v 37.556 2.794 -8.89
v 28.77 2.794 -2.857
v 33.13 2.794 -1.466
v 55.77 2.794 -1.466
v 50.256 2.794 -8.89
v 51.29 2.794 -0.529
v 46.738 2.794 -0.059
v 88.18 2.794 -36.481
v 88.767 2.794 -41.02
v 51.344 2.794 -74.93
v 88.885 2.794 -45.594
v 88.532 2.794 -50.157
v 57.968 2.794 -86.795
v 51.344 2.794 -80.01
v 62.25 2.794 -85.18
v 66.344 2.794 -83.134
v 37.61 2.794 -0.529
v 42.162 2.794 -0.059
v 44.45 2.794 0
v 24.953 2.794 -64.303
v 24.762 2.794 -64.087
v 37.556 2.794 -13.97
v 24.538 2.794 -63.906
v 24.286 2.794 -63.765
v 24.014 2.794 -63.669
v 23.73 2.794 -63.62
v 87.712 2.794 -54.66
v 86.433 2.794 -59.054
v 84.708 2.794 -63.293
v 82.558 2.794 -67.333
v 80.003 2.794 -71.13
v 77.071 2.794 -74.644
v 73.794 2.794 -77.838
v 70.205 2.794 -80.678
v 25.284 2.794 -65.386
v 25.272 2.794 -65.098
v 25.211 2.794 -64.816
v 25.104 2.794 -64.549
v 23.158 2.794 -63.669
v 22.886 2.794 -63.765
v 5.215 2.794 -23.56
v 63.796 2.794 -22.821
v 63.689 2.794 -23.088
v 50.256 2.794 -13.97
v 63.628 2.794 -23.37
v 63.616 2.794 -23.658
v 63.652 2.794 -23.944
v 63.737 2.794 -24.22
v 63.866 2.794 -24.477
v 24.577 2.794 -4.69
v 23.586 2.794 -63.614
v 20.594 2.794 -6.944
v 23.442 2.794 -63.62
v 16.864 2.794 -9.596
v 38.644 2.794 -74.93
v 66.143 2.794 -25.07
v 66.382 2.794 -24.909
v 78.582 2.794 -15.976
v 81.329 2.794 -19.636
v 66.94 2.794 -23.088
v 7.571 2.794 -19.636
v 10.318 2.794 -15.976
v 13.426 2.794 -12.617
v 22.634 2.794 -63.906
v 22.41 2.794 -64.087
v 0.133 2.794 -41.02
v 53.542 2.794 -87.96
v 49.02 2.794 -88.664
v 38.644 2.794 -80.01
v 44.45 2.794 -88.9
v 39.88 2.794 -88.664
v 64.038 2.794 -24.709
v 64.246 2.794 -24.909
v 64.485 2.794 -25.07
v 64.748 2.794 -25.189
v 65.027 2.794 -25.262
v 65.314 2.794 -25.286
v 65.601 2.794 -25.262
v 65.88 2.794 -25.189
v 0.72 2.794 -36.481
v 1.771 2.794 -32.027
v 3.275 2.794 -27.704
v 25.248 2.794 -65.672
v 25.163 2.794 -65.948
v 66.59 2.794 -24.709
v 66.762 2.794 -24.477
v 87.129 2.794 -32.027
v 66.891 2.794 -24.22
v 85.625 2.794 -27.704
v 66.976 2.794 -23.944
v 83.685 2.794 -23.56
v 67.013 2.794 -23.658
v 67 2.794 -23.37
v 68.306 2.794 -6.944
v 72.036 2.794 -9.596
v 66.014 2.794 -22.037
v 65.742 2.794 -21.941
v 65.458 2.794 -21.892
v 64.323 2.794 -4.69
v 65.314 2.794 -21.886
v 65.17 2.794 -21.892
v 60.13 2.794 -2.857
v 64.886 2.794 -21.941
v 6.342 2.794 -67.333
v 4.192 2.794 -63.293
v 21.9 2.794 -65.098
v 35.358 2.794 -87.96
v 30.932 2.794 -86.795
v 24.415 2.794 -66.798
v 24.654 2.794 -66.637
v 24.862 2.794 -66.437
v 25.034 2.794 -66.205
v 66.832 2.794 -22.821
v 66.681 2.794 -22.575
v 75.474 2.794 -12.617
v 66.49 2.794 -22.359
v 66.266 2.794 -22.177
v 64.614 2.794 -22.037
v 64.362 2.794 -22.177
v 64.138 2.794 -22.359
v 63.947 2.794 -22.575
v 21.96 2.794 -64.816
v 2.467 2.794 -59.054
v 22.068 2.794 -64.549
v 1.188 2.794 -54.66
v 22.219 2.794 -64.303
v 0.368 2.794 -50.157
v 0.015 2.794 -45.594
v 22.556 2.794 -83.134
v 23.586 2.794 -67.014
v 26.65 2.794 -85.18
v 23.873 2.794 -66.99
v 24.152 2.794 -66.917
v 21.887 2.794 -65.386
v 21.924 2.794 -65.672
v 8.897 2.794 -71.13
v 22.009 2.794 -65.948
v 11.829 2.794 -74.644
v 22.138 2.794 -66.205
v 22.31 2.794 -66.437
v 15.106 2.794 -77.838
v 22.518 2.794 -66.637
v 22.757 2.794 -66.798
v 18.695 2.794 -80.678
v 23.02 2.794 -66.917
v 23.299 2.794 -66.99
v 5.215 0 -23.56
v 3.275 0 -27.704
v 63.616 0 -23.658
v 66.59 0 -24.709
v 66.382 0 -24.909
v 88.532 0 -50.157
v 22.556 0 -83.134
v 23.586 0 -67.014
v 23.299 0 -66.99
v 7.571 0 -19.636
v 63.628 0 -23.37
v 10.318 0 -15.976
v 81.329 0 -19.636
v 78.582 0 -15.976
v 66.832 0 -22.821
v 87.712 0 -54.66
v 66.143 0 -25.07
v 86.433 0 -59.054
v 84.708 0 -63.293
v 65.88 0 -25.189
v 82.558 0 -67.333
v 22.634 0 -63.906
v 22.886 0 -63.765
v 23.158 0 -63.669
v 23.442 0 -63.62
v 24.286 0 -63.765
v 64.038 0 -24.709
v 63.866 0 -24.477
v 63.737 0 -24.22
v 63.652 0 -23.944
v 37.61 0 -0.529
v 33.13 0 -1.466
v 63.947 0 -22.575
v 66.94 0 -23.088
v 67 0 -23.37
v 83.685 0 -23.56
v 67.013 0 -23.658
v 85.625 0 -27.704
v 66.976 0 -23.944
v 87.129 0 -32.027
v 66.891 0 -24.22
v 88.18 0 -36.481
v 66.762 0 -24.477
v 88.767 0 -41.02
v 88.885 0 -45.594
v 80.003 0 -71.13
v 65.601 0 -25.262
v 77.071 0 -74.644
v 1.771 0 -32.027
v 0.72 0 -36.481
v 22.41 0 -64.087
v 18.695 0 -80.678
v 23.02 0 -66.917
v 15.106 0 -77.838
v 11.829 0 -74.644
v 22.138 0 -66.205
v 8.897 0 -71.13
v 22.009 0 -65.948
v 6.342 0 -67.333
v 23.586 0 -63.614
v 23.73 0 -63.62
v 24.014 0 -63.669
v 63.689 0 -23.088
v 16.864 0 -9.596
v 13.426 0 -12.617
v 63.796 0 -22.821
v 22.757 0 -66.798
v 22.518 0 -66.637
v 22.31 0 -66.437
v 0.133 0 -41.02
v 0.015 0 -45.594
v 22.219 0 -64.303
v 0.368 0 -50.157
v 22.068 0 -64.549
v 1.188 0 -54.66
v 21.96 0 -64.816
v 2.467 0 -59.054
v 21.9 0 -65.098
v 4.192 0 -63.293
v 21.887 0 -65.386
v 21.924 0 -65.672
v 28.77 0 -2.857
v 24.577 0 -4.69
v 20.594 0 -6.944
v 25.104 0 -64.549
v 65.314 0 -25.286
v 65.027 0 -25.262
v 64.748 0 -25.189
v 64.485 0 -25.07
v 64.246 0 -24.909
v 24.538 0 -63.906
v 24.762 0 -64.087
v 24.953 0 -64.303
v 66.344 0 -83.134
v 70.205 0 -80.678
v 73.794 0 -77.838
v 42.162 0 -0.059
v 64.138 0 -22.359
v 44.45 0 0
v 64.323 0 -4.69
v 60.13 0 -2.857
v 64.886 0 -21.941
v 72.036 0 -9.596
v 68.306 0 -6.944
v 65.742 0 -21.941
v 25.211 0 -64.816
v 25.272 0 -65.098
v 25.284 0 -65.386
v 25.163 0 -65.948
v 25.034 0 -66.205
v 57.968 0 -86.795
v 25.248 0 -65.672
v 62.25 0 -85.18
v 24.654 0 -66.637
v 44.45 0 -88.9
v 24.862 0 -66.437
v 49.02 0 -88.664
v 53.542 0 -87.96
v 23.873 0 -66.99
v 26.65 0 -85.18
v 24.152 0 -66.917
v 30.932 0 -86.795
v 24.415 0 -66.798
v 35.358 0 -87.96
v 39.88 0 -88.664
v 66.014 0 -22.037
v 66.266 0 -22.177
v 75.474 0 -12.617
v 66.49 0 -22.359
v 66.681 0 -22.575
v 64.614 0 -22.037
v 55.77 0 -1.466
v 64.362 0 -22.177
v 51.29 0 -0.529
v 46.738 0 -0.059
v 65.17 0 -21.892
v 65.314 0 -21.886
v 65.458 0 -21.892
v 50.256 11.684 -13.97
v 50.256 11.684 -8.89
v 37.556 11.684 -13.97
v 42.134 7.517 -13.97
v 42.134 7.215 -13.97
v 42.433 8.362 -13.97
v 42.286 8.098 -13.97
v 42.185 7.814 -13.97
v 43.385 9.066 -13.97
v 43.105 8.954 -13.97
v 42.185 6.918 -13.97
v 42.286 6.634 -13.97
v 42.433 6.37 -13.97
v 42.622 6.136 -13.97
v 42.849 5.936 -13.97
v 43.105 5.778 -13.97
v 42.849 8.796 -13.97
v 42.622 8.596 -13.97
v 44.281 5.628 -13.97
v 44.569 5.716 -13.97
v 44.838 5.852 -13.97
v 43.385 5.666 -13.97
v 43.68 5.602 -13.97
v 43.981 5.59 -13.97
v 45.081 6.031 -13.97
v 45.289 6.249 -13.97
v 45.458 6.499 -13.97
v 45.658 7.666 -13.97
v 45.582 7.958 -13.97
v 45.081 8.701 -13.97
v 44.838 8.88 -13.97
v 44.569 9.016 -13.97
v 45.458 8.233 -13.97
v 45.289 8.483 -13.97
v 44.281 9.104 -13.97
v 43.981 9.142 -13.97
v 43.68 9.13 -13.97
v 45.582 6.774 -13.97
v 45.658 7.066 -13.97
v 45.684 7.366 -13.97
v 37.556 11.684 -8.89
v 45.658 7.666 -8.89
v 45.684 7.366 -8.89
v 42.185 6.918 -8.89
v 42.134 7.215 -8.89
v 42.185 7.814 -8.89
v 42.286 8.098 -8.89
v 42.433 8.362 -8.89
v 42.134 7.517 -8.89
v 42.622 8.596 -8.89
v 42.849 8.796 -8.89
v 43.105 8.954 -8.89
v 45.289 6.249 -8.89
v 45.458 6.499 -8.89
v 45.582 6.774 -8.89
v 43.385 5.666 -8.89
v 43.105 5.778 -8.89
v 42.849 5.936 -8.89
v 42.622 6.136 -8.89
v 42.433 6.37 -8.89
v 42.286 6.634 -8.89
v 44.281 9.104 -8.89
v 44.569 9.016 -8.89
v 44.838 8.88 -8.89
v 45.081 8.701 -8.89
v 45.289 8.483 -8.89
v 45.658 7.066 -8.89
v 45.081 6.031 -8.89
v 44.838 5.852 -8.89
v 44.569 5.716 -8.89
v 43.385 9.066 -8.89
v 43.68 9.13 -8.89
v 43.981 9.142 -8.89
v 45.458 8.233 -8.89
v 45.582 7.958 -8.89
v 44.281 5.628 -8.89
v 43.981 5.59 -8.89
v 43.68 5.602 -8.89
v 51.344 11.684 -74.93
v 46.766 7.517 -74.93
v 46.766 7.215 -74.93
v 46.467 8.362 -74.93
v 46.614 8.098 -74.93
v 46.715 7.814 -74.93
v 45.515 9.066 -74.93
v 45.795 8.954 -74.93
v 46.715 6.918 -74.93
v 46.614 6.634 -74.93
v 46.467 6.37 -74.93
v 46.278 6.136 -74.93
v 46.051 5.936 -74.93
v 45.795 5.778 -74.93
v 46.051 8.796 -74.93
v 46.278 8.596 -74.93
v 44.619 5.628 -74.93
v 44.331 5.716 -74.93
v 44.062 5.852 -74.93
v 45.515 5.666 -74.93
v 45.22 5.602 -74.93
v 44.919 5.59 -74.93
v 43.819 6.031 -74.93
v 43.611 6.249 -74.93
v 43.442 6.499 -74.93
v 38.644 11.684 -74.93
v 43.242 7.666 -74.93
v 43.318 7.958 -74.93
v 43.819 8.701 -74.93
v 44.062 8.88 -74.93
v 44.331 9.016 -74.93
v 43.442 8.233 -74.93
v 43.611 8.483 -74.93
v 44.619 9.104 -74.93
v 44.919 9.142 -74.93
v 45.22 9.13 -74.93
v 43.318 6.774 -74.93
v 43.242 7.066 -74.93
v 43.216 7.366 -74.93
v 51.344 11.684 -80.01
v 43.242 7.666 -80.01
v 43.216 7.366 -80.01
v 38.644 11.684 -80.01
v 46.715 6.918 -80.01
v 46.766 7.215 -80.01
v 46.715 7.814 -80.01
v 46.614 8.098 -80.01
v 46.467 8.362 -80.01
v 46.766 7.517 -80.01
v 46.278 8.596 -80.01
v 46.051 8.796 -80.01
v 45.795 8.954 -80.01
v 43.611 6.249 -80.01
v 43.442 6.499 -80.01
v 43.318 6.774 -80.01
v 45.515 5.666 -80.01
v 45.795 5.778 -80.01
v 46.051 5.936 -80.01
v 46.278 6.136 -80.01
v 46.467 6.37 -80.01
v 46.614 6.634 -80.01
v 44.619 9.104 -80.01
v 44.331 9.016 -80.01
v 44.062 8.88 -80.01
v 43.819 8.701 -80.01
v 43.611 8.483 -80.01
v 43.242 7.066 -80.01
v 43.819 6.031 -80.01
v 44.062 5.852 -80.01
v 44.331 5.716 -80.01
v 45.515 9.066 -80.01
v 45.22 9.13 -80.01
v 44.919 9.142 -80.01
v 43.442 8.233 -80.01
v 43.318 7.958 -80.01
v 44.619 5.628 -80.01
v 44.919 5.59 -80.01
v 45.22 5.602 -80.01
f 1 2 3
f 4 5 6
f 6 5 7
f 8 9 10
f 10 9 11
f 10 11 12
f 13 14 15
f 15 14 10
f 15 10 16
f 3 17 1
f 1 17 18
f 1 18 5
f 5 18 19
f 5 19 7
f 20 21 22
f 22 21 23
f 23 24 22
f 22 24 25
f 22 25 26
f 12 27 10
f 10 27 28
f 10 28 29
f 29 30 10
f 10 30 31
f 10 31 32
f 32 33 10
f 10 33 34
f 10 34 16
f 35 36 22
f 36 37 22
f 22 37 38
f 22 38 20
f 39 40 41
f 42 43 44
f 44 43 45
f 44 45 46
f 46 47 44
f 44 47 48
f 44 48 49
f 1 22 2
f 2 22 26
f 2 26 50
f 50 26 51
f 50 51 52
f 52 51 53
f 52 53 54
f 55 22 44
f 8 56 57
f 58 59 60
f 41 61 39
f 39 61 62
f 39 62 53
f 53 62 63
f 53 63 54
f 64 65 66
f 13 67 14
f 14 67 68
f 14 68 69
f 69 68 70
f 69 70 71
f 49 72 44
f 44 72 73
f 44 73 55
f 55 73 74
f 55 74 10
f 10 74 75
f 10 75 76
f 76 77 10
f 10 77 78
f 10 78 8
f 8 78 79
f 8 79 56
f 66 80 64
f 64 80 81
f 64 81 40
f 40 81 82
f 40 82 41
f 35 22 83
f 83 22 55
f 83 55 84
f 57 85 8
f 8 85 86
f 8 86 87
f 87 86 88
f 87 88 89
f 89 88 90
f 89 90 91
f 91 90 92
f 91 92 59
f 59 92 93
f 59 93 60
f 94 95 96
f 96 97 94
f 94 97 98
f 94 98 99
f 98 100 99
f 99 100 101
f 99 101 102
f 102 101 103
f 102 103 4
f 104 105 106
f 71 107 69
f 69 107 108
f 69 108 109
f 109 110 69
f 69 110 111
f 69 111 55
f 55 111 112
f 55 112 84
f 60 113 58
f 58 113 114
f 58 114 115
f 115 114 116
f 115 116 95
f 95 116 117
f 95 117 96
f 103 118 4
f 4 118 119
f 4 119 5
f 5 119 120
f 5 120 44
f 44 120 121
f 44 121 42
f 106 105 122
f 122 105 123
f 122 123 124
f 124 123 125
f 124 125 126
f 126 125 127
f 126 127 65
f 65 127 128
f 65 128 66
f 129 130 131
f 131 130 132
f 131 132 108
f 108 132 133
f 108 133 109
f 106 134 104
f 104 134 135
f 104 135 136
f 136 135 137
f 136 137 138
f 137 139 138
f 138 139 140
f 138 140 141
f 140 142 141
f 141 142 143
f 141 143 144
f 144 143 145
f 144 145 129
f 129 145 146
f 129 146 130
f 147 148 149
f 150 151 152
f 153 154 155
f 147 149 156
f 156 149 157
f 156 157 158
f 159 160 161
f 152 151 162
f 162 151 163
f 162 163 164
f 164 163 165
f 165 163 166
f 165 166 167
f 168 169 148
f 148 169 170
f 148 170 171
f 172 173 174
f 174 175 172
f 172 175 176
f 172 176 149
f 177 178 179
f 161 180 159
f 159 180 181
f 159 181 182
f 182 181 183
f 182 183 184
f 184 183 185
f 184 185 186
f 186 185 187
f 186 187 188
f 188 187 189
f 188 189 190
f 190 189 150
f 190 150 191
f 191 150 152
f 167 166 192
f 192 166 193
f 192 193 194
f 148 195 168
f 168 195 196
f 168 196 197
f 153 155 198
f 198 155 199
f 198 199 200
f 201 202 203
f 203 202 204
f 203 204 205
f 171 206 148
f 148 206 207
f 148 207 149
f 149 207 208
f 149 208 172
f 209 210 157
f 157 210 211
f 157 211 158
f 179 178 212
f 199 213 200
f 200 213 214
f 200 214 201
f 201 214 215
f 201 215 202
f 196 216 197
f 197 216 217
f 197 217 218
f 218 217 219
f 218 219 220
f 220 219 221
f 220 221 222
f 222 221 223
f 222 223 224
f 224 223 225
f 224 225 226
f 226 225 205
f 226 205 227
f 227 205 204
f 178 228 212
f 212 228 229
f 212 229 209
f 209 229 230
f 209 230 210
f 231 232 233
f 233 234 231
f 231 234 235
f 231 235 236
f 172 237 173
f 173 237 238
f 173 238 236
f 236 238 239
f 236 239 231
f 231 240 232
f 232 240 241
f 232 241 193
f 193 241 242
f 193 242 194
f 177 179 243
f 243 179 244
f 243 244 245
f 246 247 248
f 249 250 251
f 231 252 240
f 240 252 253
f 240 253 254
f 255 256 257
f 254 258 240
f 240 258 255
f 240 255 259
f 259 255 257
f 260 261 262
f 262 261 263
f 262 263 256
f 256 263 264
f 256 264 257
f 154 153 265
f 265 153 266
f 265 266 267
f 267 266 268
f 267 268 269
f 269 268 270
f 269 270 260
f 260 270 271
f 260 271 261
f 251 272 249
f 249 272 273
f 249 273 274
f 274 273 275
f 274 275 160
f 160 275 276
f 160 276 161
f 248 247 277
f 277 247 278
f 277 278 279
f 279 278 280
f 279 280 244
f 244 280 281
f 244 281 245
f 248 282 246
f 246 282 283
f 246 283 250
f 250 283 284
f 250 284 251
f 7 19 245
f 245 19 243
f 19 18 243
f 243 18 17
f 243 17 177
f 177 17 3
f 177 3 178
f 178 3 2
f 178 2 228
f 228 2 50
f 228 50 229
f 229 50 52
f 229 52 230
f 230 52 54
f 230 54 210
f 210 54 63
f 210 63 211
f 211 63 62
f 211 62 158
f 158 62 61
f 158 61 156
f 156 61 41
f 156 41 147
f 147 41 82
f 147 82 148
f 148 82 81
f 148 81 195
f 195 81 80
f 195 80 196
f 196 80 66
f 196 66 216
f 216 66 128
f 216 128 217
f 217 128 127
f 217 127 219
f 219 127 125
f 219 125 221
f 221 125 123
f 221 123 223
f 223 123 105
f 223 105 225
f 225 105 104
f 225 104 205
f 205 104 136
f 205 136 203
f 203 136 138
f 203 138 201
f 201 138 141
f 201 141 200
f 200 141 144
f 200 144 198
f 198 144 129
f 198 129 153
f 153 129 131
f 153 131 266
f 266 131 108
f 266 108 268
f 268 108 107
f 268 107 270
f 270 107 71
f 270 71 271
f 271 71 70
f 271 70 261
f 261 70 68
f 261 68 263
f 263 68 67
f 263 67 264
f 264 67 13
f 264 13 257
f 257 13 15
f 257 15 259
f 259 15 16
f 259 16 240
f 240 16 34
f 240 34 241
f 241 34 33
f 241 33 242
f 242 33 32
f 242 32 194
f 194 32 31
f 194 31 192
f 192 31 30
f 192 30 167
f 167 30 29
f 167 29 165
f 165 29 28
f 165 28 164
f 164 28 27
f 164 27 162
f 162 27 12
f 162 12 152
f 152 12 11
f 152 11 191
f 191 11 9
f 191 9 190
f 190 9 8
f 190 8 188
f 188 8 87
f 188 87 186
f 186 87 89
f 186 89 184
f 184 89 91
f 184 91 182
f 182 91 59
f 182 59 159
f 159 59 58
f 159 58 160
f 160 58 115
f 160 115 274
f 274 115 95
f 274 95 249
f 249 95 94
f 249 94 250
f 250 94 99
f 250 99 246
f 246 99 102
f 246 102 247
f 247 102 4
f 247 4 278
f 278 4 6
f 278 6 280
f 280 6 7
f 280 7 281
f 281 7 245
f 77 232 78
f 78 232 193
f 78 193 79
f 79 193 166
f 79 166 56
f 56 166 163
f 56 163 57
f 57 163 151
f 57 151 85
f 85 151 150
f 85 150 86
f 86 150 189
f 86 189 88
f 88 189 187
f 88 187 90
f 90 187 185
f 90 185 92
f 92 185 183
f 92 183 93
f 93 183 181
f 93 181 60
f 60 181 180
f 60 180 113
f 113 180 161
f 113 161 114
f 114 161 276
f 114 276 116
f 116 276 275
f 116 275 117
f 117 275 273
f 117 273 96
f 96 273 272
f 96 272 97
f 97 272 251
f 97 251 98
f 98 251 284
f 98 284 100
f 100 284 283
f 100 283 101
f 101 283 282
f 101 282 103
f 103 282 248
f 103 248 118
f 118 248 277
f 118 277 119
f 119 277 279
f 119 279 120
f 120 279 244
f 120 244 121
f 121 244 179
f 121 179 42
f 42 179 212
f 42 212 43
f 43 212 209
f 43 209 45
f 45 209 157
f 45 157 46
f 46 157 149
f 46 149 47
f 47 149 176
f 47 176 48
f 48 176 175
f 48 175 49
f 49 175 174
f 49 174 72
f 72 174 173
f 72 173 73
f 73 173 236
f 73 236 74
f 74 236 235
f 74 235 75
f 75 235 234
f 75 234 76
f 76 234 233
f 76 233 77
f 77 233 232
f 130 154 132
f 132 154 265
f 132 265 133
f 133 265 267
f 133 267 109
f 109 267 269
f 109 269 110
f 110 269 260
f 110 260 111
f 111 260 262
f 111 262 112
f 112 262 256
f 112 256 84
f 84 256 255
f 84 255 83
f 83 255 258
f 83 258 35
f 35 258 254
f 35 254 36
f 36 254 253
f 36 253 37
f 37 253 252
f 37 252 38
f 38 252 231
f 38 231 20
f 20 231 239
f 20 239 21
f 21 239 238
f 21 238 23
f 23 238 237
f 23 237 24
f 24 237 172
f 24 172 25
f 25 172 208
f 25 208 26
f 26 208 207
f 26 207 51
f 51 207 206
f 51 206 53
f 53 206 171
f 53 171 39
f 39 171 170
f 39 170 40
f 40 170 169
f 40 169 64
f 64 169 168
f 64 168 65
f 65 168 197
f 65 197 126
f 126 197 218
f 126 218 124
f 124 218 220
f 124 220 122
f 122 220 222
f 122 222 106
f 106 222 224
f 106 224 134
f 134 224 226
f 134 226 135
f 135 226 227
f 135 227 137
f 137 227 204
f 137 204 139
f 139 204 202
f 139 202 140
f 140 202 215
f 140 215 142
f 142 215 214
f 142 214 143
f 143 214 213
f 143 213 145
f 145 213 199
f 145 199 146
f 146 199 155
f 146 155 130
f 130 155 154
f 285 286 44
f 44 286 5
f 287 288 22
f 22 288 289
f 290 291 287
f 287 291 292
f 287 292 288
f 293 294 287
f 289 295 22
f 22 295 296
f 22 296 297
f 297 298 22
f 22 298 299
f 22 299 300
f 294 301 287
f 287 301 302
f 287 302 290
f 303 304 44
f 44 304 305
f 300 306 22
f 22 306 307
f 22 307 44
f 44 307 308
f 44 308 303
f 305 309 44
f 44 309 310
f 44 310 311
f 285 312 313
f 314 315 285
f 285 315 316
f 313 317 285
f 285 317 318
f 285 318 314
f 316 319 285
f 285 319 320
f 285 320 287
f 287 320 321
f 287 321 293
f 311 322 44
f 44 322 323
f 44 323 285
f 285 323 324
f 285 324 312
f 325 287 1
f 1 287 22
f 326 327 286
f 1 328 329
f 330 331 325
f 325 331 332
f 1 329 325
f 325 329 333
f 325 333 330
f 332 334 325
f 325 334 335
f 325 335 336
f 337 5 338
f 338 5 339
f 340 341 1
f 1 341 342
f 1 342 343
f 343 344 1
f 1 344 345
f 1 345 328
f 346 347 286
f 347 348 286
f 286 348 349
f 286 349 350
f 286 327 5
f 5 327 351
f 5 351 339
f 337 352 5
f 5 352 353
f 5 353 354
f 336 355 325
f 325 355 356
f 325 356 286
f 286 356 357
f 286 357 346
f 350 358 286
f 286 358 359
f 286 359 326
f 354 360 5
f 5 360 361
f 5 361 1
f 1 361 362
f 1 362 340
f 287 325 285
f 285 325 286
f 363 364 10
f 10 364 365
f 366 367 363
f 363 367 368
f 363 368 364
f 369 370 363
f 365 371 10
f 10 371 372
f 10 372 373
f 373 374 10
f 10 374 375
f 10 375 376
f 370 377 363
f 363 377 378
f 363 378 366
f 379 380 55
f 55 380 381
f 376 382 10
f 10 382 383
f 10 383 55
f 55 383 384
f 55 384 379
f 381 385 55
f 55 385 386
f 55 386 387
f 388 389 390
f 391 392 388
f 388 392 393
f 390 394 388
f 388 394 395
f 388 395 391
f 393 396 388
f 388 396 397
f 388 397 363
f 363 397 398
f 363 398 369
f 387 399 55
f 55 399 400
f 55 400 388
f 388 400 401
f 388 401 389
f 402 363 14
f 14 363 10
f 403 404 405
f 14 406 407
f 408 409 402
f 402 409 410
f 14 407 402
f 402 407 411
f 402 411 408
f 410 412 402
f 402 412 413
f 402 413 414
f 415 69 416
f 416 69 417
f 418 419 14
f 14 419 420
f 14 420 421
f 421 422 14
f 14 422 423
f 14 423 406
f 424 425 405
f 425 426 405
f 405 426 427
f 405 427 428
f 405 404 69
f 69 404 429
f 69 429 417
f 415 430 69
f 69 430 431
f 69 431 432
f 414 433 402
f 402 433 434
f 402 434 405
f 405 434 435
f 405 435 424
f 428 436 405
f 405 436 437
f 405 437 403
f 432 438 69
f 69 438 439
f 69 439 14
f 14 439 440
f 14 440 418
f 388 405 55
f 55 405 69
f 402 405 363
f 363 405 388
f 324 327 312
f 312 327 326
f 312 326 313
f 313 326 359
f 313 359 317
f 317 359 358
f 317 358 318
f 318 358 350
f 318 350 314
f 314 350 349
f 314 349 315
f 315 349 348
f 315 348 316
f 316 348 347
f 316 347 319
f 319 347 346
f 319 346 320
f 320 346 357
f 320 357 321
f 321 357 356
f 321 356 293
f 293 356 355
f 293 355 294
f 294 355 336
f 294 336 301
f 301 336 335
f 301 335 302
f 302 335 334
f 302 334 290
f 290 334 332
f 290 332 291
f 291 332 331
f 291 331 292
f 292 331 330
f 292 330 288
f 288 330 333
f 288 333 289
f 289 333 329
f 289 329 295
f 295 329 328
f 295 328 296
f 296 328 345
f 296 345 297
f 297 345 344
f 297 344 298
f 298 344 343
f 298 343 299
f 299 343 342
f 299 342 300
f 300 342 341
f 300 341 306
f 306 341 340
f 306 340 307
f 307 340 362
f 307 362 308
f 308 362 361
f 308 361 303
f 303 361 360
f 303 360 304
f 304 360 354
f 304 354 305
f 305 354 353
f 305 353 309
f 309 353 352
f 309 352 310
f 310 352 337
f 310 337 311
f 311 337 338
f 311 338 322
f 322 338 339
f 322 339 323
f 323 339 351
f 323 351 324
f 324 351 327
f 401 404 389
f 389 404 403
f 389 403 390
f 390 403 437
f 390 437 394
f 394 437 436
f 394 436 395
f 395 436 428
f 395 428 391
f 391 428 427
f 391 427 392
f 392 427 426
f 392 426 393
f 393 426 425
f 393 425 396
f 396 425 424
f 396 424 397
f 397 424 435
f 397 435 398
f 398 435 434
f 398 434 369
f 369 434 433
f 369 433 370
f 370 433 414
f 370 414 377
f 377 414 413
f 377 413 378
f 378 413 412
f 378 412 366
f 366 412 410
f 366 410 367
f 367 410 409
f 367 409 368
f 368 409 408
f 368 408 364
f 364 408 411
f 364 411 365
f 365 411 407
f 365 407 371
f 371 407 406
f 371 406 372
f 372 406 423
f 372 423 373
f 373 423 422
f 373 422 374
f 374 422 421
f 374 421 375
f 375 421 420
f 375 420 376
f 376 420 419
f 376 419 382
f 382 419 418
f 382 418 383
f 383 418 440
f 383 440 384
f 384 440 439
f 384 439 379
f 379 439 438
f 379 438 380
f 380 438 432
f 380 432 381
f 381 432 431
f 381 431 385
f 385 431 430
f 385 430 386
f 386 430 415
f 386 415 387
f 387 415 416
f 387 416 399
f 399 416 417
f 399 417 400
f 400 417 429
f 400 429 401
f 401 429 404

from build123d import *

# Parameters (mm, degrees)
SKETCH1_R           = 44.45
SKETCH1_R_2         = 1.7
BOSS_EXTRUDE1_DEPTH = 2.794
SKETCH3_W           = 12.7
SKETCH3_H           = 5.08
BOSS_EXTRUDE2_DEPTH = 8.89
SKETCH4_R           = 1.778
CUT_EXTRUDE1_DEPTH  = 13.208
CIRPATTERN1_COUNT   = 2


with BuildPart() as part:
    # Sketch1 → Boss-Extrude1 (new body)
    with BuildSketch(Plane(origin=(0, 0, 0), x_dir=(1, 0, 0), z_dir=(0, 1, 0))):
        with Locations(Location((44.45, 44.45, 0), (0, 0, 270))):
            Circle(SKETCH1_R)
        with Locations(Location((65.31404504, 23.58595496, 0), (0, 0, 270))):
            Circle(SKETCH1_R_2, mode=Mode.SUBTRACT)
        with Locations(Location((23.58595496, 65.31404504, 0), (0, 0, 270))):
            Circle(SKETCH1_R_2, mode=Mode.SUBTRACT)
    extrude(amount=BOSS_EXTRUDE1_DEPTH)

    # Sketch3 → Boss-Extrude2 (add)
    with BuildSketch(Plane(origin=(0, 2.794, 0), x_dir=(1, 0, 0), z_dir=(0, 1, 0))):
        with Locations((44.99404504, 77.47)):
            Rectangle(SKETCH3_W, SKETCH3_H)
        with Locations((43.90595496, 11.43)):
            Rectangle(SKETCH3_W, SKETCH3_H)
    extrude(amount=BOSS_EXTRUDE2_DEPTH)

    # Sketch4 → Cut-Extrude1 (cut)
    with BuildSketch(Plane.XY.offset(-8.89)):
        with Locations((43.90595496, 7.366)):
            Circle(SKETCH4_R)
    cut_extrude1 = extrude(amount=-CUT_EXTRUDE1_DEPTH, mode=Mode.SUBTRACT)

    # CirPattern1: Cut-Extrude1 ×2 about axis
    cirpattern1_axis = Axis((44.45, 2.794, -44.45), (0, 1, 0))
    for i in range(1, CIRPATTERN1_COUNT):
        add(cut_extrude1.rotate(cirpattern1_axis, i * 360 / CIRPATTERN1_COUNT), mode=Mode.SUBTRACT)


solid = part.part
